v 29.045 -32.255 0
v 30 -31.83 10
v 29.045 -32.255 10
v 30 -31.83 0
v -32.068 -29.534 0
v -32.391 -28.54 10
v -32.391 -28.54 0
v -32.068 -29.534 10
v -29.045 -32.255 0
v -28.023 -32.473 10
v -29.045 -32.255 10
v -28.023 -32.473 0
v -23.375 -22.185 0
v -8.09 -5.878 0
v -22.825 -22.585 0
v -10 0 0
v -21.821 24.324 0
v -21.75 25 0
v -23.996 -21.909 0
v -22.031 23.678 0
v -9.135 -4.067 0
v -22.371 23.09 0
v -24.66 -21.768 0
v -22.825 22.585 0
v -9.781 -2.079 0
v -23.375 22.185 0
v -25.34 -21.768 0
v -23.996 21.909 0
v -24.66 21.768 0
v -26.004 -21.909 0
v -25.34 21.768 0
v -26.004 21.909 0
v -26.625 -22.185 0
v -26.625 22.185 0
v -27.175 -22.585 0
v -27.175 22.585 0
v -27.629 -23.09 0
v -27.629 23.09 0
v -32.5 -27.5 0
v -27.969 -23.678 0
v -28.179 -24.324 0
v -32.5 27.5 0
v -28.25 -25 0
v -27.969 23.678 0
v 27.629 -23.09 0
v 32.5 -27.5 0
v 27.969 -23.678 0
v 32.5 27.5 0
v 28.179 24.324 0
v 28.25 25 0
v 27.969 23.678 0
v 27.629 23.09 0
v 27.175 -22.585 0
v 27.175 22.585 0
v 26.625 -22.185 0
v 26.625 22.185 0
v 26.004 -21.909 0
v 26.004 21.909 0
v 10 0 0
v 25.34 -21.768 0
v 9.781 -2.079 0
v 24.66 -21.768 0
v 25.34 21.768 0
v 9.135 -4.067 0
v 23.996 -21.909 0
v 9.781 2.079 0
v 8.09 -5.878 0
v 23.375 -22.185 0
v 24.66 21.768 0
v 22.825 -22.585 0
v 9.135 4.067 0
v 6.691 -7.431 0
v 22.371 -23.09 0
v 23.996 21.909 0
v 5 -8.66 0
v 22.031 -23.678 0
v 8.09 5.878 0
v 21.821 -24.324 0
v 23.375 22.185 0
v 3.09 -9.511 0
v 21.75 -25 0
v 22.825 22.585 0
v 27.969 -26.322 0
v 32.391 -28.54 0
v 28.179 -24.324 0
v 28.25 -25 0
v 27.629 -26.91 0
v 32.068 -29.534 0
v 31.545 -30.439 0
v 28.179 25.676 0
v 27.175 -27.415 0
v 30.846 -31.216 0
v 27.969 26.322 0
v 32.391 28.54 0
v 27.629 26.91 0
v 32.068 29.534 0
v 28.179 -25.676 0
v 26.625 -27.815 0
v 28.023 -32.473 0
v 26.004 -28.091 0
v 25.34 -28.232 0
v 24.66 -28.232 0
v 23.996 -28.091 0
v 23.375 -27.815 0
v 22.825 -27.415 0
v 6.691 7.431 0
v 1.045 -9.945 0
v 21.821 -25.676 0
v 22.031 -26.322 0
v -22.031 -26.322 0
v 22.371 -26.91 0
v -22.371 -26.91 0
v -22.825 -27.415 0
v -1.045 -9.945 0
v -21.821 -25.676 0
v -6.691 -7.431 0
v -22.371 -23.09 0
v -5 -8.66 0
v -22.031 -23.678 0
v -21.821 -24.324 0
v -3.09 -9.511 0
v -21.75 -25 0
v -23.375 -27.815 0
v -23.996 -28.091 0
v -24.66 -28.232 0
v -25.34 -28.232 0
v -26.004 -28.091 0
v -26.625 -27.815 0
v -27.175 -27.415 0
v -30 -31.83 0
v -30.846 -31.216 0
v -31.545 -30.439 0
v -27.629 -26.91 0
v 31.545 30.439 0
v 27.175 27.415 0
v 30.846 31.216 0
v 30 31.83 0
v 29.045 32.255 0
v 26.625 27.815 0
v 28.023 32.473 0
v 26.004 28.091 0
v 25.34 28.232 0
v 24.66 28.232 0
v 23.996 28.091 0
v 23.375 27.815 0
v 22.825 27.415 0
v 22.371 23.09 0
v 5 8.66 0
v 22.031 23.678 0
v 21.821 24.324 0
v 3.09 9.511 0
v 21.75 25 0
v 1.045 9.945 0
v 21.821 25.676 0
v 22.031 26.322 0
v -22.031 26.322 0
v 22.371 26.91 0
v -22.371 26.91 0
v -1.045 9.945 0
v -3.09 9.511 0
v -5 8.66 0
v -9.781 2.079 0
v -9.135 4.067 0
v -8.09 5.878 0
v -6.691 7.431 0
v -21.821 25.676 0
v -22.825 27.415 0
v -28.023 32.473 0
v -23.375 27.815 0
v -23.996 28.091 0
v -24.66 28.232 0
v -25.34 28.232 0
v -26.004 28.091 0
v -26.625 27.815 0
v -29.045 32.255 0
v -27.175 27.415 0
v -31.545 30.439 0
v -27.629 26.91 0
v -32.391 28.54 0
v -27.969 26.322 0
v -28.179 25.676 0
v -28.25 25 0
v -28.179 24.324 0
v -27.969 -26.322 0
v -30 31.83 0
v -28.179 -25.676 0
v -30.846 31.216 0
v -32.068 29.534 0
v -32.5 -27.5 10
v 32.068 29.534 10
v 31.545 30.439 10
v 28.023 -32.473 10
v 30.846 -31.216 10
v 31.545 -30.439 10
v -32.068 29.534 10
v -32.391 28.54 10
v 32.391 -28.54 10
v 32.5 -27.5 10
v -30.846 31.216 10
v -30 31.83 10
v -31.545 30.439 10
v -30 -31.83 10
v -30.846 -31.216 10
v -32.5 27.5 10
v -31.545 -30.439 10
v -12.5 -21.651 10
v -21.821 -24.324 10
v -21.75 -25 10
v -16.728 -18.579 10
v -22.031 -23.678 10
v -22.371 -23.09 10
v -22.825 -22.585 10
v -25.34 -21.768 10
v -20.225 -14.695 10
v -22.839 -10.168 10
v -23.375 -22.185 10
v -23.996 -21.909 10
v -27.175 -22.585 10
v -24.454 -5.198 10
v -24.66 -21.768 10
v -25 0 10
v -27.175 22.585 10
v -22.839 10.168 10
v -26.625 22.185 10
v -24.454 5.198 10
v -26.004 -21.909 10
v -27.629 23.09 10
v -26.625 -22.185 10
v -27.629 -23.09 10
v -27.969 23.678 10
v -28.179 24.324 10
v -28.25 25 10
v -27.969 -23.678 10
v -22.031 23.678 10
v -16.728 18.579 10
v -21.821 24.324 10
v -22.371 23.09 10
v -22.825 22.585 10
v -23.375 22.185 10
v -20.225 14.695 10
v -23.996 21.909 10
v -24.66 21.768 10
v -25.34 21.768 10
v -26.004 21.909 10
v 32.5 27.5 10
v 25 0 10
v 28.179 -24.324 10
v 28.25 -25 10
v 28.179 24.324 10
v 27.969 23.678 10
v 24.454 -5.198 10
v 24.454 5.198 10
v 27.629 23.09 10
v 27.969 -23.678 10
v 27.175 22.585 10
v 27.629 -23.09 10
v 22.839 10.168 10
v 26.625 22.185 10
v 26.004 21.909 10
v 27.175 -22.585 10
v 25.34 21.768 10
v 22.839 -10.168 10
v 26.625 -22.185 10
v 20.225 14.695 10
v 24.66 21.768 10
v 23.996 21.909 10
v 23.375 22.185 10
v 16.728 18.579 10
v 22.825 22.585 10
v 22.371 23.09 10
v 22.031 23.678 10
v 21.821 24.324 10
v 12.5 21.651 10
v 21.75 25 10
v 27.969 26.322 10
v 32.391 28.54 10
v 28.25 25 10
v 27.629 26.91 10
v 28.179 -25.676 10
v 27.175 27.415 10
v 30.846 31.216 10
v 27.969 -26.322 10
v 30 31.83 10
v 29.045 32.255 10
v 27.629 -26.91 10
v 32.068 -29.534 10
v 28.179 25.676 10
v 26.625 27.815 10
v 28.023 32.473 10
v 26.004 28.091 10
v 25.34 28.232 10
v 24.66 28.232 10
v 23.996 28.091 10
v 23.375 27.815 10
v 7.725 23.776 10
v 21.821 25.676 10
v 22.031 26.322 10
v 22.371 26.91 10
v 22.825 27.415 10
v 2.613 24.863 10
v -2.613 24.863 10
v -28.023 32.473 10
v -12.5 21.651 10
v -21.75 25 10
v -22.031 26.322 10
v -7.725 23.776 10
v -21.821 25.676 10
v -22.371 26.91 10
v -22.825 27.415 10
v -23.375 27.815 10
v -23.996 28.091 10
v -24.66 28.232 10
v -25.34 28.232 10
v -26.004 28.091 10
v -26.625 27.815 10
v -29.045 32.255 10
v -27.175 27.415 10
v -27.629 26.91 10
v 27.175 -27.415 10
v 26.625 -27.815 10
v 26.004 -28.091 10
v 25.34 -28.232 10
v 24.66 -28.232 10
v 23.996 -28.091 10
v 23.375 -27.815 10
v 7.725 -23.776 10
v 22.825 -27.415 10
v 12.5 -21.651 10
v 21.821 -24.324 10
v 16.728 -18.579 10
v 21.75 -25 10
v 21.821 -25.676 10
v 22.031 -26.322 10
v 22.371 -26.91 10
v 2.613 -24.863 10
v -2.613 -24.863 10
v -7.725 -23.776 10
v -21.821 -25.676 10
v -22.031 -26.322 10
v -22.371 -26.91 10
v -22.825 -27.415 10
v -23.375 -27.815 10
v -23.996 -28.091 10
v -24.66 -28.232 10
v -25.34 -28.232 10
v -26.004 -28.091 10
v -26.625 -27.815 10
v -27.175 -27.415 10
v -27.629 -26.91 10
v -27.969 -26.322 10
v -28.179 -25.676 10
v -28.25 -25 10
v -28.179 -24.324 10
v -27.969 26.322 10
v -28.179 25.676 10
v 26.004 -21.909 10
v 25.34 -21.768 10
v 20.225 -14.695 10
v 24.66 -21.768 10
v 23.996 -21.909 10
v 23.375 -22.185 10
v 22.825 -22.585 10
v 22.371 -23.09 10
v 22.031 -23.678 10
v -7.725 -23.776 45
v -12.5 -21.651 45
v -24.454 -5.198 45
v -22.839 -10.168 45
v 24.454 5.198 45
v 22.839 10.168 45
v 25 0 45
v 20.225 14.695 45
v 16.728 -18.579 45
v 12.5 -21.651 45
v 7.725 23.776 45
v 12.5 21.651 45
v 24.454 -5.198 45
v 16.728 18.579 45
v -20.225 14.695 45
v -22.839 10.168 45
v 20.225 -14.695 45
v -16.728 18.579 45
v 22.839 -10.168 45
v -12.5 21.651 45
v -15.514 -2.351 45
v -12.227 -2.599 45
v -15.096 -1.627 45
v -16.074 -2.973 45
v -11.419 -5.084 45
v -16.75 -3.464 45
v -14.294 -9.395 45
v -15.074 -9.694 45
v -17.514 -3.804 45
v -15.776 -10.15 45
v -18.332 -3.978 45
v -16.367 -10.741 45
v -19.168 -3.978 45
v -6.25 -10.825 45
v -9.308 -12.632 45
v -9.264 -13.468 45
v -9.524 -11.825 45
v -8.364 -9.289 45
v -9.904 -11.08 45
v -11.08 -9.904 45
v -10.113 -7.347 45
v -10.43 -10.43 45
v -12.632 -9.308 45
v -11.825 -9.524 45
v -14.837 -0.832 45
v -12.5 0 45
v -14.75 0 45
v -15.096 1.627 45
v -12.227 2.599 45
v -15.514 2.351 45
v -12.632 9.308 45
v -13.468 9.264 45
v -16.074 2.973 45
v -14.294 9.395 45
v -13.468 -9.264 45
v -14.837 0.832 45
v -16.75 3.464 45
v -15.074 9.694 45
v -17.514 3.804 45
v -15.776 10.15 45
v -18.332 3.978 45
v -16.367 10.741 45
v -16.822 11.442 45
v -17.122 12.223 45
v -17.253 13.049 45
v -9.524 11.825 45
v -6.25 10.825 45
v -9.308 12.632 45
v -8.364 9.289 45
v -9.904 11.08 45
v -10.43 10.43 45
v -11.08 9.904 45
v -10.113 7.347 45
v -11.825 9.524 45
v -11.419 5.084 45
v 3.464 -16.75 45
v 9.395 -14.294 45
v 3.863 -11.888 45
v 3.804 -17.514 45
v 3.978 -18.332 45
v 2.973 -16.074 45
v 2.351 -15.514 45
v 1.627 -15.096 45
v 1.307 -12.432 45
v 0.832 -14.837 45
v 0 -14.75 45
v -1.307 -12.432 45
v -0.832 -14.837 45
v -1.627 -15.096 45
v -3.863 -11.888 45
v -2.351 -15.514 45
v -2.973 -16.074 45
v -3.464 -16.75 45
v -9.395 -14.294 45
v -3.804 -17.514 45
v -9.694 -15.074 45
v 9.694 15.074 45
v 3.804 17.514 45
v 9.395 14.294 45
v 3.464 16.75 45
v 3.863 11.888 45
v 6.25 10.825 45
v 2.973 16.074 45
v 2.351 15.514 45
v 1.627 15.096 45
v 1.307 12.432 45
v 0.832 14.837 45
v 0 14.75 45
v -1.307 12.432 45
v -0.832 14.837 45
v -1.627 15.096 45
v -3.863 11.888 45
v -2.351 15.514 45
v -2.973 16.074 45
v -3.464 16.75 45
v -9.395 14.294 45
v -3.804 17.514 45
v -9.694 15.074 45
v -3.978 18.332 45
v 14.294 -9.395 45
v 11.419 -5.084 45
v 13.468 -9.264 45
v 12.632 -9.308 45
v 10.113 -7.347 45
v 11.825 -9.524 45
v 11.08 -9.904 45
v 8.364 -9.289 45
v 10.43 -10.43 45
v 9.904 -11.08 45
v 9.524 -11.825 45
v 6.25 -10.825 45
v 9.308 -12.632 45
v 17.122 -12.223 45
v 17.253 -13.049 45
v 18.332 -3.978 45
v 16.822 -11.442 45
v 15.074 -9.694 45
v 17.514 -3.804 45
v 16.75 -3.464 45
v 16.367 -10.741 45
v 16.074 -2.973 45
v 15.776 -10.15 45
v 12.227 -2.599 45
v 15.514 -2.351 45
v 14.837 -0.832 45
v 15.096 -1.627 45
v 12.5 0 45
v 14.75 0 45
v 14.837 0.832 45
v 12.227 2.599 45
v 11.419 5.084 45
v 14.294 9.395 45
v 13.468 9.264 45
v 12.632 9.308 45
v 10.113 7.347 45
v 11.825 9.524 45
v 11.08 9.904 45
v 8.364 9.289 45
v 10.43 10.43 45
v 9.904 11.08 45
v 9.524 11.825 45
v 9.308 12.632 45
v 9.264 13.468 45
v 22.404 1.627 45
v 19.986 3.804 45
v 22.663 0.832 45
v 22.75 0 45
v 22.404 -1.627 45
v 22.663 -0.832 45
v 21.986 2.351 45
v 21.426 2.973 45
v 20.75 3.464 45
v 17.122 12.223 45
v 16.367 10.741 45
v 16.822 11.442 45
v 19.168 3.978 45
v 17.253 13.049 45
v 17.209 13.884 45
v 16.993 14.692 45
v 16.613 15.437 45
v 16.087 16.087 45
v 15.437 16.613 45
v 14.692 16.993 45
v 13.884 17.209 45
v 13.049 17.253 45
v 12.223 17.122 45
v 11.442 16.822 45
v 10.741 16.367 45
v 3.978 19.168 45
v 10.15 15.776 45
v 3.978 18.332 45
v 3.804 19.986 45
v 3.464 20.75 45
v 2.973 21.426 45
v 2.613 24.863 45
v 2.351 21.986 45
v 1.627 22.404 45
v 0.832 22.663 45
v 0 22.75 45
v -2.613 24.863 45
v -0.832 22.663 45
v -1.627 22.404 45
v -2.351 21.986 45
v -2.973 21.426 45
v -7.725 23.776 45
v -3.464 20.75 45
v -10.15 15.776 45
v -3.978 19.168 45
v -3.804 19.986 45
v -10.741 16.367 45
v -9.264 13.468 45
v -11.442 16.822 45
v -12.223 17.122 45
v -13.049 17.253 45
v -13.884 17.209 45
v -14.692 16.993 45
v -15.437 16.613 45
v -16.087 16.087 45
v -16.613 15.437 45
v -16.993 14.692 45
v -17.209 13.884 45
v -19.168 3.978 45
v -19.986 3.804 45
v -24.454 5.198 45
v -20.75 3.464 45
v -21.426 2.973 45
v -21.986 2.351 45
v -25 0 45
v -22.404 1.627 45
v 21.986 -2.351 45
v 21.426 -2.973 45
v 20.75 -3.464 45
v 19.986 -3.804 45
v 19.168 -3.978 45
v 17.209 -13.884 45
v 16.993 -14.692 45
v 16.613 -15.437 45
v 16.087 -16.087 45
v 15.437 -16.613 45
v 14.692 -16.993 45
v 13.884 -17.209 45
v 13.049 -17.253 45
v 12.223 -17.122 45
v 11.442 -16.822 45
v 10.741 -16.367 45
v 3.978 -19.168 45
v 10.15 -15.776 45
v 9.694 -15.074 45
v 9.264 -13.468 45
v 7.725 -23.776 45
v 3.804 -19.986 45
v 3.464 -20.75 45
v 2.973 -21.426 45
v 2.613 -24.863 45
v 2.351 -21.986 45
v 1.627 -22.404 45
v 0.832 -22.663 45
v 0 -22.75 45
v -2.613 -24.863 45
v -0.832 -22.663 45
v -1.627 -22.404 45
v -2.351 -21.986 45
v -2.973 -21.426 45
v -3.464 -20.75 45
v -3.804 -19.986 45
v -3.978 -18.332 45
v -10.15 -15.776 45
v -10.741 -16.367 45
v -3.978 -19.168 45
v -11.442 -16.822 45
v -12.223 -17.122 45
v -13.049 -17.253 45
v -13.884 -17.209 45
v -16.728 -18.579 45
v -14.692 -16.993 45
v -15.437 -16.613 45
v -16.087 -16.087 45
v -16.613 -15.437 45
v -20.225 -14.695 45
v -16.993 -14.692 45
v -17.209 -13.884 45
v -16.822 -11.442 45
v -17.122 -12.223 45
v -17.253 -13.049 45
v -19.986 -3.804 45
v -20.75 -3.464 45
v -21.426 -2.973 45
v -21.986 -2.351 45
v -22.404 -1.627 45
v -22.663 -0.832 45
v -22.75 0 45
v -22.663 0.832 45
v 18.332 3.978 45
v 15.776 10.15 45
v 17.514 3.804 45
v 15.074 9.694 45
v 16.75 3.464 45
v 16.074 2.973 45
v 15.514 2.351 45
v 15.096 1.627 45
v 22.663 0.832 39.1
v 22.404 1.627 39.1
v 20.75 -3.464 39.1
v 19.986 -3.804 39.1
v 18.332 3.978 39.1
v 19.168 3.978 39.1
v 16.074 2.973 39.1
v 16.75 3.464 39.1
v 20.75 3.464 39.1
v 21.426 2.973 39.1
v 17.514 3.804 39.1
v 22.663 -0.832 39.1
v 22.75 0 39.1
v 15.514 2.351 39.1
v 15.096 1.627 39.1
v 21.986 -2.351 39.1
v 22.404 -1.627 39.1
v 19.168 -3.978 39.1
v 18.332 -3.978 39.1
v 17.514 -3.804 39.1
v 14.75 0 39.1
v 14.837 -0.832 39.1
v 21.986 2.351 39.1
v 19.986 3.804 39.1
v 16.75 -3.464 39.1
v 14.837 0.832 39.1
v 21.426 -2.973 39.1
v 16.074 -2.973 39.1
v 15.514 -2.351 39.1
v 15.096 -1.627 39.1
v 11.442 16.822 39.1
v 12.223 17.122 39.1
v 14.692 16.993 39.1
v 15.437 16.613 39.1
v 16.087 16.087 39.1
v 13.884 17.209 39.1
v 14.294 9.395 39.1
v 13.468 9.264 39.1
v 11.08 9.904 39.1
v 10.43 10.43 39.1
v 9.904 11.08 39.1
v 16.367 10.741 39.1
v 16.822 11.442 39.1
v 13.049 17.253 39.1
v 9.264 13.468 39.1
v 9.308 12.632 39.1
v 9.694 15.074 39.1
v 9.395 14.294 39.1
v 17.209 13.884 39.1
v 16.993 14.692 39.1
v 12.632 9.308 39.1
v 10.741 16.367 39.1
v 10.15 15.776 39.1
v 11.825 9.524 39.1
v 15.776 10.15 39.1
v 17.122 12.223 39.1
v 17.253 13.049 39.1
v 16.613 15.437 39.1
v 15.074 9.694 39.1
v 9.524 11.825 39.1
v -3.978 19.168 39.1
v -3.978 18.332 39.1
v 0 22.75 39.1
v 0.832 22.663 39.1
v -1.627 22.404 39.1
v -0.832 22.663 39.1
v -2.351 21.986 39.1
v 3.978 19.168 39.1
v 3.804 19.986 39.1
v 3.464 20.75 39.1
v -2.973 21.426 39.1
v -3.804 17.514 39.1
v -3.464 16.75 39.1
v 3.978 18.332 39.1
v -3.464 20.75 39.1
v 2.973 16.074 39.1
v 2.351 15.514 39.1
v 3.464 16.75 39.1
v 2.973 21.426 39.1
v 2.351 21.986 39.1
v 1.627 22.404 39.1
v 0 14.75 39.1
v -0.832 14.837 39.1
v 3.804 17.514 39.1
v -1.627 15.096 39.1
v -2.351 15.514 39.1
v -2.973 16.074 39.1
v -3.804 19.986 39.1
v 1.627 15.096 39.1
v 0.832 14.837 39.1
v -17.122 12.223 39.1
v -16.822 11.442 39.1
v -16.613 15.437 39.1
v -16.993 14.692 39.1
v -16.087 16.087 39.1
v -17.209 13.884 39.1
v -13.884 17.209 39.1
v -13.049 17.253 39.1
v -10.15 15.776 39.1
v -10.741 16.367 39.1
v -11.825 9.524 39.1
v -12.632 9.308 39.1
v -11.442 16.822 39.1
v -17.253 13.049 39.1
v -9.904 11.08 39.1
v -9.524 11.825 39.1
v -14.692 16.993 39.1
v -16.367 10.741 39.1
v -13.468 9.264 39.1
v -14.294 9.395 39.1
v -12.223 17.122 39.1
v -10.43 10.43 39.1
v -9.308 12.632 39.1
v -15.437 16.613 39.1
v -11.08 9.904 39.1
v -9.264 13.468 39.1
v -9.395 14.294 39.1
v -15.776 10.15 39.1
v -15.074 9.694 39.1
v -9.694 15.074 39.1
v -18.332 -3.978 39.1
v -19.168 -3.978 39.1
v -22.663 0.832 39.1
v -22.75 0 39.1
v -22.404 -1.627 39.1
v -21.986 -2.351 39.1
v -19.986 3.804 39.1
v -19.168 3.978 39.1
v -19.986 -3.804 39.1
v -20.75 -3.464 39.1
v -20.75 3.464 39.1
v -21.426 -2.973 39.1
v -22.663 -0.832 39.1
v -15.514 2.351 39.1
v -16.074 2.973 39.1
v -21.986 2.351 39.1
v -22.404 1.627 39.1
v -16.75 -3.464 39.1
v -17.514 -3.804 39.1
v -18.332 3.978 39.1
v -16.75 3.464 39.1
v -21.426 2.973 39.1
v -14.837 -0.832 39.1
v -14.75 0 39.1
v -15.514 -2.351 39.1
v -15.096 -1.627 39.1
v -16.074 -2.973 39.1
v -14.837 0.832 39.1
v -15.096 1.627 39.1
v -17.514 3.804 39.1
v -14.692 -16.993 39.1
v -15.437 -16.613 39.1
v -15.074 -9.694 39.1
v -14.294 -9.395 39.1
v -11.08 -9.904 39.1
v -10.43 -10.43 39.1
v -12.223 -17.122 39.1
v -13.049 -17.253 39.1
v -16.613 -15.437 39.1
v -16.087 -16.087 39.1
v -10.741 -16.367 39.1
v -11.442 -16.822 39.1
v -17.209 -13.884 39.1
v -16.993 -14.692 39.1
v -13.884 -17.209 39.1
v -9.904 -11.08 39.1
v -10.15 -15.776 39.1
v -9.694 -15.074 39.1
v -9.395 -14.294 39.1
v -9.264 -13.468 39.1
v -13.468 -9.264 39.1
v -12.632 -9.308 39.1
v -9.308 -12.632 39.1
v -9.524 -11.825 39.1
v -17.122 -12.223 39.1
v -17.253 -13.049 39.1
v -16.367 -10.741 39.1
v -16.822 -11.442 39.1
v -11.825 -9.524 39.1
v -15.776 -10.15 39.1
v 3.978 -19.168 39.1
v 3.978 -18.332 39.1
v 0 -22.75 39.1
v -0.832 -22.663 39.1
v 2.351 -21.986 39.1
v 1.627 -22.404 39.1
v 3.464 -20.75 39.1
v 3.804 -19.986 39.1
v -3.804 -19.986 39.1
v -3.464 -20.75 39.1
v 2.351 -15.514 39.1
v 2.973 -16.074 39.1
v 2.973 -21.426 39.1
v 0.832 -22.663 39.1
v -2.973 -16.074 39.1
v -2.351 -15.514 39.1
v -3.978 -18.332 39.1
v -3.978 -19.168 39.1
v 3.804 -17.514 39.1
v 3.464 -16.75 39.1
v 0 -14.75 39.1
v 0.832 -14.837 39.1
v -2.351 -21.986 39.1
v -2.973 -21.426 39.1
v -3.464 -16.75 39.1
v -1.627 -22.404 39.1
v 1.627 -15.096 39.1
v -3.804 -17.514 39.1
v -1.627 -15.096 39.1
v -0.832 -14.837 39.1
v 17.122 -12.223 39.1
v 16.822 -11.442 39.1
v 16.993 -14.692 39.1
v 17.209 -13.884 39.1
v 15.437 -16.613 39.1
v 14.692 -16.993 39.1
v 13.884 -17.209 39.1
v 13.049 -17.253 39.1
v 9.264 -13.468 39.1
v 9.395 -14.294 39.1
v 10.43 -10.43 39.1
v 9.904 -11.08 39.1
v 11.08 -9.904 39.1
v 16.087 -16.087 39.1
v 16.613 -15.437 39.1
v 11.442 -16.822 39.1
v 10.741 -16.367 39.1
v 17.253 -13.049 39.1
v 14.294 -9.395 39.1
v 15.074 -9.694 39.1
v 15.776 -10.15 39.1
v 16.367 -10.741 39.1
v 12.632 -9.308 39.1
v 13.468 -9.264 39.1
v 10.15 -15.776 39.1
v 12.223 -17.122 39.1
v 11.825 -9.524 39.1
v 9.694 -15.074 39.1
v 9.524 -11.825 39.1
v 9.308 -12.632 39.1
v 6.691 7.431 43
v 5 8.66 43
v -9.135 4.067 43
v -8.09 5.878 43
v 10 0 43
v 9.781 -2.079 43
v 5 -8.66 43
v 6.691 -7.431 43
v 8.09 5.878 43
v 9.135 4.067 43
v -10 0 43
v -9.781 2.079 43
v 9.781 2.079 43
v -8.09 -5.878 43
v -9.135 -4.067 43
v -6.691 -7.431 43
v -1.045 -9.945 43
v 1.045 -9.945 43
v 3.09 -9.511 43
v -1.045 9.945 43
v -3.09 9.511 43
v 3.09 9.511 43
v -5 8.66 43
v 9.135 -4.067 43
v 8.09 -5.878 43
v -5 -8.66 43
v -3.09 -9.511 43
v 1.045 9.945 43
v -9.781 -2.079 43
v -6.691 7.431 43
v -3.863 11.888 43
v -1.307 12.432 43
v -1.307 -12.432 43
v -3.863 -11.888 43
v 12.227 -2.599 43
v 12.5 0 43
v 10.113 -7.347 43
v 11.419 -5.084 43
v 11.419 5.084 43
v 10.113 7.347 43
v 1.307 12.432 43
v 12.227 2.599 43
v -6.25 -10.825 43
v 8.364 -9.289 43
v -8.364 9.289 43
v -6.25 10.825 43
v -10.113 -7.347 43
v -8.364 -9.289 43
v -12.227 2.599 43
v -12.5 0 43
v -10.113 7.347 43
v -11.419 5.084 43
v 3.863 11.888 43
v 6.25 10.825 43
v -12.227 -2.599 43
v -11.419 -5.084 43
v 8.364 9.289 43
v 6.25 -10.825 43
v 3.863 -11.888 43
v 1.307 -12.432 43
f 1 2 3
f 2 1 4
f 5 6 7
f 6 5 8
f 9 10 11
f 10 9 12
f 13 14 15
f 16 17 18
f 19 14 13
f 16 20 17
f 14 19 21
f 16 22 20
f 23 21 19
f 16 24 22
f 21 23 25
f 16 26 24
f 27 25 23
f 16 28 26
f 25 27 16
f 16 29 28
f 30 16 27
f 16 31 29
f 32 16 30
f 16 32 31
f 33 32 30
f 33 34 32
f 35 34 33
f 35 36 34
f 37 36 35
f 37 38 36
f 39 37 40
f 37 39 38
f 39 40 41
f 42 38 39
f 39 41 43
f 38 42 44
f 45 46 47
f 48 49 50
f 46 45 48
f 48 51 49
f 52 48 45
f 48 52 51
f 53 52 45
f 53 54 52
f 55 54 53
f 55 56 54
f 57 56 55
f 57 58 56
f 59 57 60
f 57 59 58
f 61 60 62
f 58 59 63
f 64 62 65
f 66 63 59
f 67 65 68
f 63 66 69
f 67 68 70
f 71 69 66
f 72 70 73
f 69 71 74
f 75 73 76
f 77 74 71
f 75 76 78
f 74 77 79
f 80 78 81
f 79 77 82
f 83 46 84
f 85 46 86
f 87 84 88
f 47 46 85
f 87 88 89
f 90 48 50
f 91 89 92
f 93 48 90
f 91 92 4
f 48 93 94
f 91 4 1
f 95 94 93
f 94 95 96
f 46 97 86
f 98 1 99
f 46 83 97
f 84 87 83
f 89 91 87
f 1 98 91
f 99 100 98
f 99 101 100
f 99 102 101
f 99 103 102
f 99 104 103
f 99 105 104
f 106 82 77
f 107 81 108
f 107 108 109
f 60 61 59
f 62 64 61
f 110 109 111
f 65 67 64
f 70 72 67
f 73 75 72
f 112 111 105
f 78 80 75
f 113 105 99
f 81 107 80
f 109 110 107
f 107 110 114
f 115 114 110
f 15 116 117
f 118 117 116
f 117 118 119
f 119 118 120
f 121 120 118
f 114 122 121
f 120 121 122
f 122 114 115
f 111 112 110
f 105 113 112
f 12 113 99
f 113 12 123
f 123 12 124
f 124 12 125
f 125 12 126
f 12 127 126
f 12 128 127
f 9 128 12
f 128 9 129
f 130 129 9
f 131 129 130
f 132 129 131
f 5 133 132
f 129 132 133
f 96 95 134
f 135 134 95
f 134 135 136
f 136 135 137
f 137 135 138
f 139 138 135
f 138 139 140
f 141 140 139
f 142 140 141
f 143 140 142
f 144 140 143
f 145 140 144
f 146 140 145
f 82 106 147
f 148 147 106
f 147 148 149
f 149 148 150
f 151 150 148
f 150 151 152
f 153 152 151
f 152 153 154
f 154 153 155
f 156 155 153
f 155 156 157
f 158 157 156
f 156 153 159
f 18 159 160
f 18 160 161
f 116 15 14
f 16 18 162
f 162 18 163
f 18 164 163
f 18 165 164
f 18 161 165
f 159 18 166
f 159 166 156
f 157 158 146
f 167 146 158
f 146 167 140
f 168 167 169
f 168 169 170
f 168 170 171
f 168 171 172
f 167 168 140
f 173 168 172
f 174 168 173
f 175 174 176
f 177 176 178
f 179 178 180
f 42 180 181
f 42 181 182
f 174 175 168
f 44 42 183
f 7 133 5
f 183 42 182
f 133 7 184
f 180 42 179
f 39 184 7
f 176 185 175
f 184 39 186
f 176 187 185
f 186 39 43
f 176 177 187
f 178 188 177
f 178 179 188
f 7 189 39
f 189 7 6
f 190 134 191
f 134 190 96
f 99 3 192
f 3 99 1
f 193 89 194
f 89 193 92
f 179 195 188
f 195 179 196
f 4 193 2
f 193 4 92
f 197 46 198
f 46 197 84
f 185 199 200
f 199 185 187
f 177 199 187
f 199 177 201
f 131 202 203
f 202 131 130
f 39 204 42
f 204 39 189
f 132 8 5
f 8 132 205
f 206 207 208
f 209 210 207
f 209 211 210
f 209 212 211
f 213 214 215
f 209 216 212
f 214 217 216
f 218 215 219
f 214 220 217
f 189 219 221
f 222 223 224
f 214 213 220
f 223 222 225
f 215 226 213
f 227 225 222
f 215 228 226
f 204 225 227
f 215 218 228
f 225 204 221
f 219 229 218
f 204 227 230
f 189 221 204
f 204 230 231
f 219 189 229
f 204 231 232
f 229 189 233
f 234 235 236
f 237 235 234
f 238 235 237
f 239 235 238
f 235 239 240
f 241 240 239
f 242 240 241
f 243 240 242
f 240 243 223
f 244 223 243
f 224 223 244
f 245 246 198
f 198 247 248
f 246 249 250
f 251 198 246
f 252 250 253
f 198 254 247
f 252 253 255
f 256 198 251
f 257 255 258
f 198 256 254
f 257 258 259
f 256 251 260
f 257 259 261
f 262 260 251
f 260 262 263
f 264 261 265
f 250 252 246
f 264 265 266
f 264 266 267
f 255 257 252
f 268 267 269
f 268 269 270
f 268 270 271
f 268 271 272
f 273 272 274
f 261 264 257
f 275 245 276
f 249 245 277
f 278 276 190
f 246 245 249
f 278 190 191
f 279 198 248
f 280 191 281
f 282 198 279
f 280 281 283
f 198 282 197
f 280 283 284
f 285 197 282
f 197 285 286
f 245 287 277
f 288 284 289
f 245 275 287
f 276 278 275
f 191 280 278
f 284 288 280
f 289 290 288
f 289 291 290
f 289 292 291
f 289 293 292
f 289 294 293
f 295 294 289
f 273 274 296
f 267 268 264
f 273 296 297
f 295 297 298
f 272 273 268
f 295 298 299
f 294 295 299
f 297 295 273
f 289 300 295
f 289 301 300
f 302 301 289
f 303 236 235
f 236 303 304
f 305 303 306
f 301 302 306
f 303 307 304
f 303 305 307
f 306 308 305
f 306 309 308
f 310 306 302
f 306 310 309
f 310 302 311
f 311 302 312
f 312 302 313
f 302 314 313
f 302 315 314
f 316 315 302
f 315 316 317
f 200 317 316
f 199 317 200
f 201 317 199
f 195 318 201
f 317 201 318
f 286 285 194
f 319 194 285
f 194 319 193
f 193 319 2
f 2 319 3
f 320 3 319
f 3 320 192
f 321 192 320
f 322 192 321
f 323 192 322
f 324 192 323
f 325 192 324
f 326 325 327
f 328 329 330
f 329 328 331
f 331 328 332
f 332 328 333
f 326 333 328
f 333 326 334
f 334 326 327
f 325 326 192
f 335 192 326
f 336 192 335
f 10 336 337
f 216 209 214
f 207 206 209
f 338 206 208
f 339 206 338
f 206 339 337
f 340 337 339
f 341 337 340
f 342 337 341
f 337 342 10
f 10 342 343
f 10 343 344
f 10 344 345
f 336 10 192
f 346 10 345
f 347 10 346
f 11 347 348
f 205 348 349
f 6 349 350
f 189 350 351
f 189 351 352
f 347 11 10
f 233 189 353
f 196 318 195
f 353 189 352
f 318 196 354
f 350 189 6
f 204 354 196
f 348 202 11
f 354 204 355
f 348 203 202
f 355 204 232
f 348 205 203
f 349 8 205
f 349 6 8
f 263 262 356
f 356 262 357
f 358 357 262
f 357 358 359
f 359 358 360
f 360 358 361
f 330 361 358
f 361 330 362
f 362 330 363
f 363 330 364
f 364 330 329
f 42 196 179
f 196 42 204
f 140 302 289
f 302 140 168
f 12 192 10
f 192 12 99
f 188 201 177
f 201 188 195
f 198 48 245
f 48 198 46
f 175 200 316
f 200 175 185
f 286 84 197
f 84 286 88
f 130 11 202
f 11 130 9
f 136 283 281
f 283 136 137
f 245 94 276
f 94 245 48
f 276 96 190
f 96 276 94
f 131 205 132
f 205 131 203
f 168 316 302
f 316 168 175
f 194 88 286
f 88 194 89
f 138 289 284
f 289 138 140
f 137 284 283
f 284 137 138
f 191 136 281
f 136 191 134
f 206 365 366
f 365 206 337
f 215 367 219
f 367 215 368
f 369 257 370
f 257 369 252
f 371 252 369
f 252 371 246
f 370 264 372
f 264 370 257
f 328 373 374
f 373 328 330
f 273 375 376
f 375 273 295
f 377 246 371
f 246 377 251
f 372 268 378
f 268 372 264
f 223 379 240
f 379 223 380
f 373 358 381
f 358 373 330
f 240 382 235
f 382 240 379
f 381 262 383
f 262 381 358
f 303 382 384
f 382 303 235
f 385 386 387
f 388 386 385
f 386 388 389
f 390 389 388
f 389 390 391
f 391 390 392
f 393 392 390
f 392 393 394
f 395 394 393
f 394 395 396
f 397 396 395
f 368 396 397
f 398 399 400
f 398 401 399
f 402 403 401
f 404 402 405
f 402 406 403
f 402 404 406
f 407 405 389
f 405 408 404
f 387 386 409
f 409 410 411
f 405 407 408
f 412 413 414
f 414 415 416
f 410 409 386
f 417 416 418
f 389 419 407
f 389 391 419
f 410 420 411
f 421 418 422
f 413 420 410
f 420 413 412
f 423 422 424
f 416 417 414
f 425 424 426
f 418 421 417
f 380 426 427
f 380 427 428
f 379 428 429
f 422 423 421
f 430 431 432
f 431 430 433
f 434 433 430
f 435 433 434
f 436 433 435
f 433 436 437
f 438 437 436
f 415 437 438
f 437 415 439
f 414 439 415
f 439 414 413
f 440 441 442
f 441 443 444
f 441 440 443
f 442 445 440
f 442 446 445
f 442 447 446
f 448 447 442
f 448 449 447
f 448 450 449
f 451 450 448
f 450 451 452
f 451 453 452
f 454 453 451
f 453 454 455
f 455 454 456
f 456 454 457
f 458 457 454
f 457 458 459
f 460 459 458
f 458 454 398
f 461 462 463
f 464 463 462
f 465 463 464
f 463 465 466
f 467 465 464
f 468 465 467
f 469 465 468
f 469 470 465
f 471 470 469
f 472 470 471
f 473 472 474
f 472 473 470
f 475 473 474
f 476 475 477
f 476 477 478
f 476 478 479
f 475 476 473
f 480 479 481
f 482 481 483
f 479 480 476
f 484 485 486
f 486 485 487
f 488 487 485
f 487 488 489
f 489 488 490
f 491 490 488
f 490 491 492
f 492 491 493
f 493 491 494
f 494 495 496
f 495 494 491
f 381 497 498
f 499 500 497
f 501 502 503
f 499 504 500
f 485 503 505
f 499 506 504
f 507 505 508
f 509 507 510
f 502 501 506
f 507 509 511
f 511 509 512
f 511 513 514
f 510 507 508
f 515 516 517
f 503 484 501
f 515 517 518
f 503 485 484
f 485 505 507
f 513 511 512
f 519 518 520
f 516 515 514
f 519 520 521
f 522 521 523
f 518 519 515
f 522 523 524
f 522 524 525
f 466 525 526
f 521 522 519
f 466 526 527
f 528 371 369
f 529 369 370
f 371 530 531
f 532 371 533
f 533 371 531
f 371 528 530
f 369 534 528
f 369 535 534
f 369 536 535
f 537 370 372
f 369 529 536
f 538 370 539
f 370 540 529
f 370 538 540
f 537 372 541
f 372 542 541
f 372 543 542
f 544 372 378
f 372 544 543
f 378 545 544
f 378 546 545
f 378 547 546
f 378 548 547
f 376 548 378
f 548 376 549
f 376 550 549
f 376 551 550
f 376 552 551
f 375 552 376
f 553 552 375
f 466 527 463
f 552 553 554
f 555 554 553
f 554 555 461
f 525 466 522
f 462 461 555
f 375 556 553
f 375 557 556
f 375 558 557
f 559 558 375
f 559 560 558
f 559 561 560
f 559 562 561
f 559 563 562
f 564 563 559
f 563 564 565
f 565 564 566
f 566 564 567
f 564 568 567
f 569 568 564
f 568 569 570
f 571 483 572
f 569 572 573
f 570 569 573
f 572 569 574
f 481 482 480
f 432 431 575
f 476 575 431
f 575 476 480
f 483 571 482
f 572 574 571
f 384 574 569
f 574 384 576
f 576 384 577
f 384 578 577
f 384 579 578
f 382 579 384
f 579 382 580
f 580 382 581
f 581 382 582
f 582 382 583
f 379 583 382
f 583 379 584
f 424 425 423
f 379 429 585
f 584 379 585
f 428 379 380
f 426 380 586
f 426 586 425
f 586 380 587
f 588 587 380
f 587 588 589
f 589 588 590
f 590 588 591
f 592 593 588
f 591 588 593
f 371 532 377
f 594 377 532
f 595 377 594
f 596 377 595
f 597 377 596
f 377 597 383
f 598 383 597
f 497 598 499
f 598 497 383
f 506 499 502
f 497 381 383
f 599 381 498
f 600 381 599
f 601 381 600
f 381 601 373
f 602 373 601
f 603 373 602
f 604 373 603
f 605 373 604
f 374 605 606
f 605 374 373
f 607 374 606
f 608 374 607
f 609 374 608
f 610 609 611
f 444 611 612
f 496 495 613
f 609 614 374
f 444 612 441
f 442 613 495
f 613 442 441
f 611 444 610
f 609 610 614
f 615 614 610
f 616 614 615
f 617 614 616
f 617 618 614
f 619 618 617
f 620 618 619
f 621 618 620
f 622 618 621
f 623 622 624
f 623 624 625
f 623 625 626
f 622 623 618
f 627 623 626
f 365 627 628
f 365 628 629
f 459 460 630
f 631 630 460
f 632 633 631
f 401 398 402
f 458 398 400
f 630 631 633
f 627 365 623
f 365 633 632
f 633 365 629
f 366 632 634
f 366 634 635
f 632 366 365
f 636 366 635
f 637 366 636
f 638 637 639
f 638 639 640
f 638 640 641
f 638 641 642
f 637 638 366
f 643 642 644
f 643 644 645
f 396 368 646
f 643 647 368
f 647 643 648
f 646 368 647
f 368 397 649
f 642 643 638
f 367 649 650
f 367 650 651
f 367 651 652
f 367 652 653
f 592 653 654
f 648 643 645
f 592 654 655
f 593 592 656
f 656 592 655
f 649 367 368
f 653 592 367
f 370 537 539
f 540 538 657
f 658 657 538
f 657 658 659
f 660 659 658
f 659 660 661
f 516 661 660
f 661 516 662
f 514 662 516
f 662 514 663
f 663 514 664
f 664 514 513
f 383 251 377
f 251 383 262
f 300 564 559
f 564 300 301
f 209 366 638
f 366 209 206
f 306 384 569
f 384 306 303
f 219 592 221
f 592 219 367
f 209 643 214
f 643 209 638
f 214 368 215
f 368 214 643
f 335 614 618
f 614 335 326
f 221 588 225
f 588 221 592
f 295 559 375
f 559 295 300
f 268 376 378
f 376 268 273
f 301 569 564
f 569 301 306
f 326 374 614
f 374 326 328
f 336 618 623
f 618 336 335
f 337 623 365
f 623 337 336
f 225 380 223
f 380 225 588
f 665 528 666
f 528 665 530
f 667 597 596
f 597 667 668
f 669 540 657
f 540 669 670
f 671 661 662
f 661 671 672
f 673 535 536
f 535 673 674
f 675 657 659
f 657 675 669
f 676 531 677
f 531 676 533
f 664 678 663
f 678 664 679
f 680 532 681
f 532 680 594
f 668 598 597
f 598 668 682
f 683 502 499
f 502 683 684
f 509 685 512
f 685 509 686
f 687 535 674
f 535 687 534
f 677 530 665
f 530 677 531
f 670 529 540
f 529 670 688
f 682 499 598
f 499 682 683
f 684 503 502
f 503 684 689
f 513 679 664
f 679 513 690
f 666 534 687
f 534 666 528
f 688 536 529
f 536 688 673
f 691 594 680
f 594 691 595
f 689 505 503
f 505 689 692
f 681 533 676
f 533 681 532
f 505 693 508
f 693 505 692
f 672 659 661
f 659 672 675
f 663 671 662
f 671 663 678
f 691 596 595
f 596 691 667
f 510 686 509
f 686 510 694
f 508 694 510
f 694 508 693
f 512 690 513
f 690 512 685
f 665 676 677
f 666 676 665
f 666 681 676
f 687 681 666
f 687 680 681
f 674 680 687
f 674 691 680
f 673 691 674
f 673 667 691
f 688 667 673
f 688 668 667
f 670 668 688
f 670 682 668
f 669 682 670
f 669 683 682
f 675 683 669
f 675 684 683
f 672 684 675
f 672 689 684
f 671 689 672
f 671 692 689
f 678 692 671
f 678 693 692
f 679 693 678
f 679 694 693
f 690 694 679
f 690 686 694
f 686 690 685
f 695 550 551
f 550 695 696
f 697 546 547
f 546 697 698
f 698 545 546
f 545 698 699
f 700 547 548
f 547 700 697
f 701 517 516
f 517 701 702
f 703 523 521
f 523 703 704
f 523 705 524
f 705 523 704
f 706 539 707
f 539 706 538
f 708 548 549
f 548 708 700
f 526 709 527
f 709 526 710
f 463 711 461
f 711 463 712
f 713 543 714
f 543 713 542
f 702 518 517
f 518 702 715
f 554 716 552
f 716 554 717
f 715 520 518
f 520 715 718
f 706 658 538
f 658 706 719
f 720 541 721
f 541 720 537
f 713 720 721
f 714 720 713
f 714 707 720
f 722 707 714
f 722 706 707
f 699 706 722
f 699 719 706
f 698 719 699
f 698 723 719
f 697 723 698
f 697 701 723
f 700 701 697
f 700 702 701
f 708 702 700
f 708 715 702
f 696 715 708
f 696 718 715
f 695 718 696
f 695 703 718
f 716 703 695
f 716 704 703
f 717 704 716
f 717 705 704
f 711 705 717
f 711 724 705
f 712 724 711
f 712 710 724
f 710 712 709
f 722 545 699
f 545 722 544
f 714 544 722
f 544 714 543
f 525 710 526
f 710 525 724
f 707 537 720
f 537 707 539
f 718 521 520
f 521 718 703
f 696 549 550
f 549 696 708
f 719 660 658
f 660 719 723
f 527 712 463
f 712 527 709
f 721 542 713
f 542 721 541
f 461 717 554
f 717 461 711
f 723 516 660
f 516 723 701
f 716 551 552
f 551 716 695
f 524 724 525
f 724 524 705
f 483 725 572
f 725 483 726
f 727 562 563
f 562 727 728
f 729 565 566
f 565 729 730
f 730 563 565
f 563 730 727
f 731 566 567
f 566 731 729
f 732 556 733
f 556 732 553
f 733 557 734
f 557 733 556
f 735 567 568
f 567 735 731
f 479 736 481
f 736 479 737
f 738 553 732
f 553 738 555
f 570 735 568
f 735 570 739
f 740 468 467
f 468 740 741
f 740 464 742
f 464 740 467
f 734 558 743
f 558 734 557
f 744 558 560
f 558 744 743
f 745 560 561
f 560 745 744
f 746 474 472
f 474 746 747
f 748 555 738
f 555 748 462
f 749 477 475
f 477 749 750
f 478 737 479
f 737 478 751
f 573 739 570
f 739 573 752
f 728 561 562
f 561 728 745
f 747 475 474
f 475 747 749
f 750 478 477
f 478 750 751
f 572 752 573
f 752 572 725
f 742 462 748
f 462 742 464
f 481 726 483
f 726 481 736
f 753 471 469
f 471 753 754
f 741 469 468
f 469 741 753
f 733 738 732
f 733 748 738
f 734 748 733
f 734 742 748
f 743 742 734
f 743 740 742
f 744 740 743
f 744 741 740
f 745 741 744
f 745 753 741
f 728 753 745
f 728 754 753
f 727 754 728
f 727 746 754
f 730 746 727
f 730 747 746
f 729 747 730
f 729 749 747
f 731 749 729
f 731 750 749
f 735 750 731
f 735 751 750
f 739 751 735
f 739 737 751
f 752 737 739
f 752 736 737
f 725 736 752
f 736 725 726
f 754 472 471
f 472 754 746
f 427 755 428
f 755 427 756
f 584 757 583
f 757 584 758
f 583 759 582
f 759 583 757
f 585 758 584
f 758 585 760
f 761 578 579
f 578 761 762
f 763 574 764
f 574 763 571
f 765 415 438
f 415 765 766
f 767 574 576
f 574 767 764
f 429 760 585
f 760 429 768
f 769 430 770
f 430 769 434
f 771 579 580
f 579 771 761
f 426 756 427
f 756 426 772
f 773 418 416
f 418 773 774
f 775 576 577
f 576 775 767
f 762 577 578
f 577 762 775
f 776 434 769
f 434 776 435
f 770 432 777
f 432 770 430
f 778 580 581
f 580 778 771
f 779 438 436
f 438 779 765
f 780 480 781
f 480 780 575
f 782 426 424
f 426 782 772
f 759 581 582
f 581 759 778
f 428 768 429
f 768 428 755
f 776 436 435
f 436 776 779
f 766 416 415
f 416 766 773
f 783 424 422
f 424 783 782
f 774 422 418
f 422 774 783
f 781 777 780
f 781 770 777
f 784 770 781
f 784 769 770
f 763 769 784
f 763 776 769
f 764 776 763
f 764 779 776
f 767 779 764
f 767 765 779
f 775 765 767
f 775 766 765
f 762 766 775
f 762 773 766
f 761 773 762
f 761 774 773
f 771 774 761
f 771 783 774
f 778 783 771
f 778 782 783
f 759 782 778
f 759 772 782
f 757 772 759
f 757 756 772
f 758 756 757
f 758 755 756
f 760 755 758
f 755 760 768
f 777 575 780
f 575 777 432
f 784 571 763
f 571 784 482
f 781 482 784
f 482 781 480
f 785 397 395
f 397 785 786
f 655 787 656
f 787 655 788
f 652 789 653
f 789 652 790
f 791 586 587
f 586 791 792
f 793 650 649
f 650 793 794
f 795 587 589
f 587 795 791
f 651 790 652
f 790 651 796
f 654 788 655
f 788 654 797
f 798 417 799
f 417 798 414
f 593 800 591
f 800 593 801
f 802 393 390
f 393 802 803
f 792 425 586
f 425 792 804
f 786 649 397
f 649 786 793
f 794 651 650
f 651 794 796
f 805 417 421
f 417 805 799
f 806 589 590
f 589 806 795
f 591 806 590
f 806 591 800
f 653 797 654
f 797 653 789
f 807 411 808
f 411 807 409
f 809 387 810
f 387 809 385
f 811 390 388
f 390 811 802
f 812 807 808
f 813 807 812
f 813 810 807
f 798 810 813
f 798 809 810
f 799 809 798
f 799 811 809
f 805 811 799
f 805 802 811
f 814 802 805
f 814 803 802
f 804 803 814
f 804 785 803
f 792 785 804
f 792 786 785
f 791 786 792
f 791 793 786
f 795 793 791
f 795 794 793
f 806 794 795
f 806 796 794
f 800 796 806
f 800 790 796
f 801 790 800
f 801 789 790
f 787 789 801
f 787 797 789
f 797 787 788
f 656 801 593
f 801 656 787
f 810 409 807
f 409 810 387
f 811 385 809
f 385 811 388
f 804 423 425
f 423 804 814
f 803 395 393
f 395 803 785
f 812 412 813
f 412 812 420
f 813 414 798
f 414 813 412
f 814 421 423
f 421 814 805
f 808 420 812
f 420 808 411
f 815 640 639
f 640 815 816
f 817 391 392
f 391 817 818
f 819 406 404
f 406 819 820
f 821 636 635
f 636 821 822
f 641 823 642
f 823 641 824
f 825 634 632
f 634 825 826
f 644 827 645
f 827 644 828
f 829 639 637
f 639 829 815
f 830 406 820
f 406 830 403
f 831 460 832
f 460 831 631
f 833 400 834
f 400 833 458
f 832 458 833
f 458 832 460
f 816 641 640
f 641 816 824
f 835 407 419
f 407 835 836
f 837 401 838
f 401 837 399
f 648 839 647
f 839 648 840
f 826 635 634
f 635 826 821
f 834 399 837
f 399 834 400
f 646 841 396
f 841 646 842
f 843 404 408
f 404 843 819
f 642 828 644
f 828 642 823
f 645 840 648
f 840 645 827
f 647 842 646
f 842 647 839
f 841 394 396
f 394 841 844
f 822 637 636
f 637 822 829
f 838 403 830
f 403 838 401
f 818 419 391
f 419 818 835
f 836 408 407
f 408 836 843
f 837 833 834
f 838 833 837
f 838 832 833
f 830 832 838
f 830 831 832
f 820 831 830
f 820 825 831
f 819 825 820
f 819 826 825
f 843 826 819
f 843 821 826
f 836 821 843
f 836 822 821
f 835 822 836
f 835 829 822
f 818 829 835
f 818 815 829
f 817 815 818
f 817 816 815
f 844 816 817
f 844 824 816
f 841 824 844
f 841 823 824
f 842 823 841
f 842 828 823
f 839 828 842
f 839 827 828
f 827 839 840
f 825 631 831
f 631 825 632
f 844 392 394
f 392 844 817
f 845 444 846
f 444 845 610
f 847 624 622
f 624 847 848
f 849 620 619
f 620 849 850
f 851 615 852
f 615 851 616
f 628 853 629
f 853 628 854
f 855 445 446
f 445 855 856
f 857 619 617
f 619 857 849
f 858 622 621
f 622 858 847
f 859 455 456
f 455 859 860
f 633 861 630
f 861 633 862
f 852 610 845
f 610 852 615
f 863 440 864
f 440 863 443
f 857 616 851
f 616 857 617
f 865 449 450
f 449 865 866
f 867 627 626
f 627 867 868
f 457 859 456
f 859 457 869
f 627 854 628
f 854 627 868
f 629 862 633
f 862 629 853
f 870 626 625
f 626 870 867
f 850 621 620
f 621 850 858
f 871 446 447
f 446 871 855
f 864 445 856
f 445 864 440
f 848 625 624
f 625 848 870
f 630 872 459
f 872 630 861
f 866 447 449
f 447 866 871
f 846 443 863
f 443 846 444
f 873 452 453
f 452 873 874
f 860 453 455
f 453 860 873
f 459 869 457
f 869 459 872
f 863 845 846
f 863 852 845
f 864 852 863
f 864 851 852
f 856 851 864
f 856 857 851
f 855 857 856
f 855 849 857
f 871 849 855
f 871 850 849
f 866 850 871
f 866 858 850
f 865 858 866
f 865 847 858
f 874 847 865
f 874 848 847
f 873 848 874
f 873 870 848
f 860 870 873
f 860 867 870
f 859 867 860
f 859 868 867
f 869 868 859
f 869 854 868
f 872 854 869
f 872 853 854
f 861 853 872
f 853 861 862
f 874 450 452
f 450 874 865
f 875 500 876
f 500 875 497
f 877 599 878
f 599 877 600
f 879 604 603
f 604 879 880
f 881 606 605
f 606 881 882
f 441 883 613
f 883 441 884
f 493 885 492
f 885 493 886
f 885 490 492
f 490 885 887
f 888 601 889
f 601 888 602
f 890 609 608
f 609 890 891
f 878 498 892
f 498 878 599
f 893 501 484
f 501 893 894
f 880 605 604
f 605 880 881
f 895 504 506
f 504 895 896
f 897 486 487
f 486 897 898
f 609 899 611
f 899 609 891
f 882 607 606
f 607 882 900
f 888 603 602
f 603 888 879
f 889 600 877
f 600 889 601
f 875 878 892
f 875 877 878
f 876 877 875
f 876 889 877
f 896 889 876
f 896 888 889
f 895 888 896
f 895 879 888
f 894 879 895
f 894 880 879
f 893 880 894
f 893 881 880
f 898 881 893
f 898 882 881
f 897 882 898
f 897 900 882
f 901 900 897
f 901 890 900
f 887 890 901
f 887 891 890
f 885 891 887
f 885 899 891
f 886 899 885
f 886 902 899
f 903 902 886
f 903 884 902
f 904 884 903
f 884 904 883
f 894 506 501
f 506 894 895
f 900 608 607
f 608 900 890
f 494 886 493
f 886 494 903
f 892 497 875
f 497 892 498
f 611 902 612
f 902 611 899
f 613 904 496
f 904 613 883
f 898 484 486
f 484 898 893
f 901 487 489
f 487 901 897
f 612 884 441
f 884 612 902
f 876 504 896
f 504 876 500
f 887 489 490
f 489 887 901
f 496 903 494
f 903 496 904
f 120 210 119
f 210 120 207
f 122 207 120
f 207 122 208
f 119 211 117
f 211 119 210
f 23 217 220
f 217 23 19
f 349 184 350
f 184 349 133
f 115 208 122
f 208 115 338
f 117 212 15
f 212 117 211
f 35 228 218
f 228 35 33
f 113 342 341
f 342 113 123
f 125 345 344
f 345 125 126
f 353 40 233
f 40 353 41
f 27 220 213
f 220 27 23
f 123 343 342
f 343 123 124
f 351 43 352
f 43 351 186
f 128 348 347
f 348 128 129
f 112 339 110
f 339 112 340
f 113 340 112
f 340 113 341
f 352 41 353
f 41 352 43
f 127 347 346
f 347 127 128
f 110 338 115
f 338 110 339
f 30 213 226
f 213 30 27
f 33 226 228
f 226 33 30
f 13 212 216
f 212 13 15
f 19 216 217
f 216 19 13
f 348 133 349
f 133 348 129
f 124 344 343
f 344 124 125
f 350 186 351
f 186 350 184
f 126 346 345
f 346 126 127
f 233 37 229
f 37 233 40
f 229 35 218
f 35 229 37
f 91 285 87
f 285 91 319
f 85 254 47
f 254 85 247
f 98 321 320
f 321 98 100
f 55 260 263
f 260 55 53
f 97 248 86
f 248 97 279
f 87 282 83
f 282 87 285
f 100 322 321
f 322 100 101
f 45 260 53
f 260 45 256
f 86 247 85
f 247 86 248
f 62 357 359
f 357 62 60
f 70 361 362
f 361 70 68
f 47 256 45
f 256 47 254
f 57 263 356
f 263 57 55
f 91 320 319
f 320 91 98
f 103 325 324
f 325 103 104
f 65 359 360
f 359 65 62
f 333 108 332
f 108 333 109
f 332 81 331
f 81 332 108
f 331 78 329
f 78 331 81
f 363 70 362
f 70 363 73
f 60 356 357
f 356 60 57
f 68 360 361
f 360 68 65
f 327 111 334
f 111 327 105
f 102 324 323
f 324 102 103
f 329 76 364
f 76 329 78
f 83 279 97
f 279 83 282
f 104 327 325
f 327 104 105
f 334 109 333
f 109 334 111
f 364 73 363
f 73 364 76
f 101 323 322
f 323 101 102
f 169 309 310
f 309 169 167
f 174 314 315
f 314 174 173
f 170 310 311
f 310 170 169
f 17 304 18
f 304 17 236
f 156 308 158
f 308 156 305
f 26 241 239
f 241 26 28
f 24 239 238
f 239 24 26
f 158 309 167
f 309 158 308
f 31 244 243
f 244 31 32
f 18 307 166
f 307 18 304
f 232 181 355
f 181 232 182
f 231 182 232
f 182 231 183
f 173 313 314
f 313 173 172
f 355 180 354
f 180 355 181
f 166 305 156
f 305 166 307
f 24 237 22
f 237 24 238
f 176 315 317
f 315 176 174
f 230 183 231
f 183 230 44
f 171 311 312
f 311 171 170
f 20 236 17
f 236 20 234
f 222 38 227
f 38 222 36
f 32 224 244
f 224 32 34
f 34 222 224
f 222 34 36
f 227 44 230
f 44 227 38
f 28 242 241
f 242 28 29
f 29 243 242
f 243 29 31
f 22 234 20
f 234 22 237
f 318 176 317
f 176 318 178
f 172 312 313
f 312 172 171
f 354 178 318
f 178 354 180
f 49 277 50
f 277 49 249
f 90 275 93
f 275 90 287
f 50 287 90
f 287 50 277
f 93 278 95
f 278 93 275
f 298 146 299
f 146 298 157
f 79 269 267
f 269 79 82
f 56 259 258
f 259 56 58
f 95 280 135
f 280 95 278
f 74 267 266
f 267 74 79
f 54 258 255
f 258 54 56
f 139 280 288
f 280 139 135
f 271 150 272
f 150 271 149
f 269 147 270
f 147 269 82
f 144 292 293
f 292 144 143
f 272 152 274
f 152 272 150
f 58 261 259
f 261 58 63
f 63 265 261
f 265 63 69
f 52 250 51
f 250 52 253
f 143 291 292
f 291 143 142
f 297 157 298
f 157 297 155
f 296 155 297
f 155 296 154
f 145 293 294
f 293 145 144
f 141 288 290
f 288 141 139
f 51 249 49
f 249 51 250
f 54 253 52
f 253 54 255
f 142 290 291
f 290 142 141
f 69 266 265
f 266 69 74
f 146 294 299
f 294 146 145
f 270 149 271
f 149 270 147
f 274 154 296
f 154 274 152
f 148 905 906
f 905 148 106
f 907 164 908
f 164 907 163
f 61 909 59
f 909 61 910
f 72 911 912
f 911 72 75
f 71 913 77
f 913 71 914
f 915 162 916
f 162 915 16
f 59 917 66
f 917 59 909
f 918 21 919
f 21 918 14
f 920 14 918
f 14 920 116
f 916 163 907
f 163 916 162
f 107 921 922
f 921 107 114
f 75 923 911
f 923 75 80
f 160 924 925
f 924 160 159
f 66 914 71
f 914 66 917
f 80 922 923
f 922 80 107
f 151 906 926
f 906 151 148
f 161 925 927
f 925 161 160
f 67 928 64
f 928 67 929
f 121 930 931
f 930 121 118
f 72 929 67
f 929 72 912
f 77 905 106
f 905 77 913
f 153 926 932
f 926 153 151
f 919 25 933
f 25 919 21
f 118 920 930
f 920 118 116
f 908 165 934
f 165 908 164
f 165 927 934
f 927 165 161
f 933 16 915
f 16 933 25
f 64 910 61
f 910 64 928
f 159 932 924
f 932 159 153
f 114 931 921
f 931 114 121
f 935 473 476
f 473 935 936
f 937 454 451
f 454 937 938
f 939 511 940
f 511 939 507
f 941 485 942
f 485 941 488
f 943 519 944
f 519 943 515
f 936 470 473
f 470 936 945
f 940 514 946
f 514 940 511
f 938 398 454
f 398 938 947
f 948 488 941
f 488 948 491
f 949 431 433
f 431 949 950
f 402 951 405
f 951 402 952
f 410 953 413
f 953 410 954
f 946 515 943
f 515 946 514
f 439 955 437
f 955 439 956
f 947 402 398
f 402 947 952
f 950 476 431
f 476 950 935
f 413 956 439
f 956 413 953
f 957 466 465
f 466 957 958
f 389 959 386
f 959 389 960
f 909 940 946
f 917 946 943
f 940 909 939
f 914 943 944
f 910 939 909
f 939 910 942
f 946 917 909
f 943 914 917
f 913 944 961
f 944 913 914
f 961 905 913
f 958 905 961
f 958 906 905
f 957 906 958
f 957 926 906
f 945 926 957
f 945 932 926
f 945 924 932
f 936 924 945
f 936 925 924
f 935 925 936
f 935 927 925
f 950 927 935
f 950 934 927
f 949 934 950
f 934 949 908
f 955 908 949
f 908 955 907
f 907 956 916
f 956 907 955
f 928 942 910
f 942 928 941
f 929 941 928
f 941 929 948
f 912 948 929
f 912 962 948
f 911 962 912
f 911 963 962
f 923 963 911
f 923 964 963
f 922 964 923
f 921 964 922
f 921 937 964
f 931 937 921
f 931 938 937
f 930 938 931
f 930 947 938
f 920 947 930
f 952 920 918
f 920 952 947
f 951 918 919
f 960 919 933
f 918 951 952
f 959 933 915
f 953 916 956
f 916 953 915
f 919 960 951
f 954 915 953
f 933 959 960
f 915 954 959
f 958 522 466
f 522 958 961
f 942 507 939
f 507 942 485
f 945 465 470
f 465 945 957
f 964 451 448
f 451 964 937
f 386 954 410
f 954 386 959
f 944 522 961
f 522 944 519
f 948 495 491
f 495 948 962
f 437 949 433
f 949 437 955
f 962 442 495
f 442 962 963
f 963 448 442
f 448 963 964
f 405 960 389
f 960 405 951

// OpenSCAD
//$fa=1;
$fs=0.5;

module roundedRect(size, radius)
{
    x = size[0];
    y = size[1];
    z = size[2];

    linear_extrude(height=z)
    hull() {
        // place 4 circles in the corners, with the given radius
        translate([(-x/2)+(radius/2), (-y/2)+(radius/2), 0])
        circle(r=radius);

        translate([(x/2)-(radius/2), (-y/2)+(radius/2), 0])
        circle(r=radius);

        translate([(-x/2)+(radius/2), (y/2)-(radius/2), 0])
        circle(r=radius);

        translate([(x/2)-(radius/2), (y/2)-(radius/2), 0])
        circle(r=radius);
    }
}



module pcd(n, d) 
{
    angle = 360/n;
    for (i=[0:n-1]) {
        rotate([0,0,i*angle]) translate([d/2,0,0]) children();
    }
    
}

module grid(size, xn, yn, center=false)
{
    xmin = center == true ?  -0.5 * size[0] : 0;
    ymin = center == true ?  -0.5 * size[1] : 0;
    x_spacing = size[0] / (xn - 1);
    y_spacing = size[1] / (yn - 1);
    for (y = [0: yn - 1]) {
        for (x = [0: xn-1]) {
            translate([xmin+x*x_spacing, ymin + y*y_spacing, 0]) children();
        }
    }
}


module bearing_housing() {
    boss_size = [60, 60, 10];
    boss_rad = 5;
    boss_holes = [50, 50];
    cyl_dia = 50;
    cyl_h = 35;
    thru_dia = 20;
    cap_pcd = 37.5;
    cap_n = 8;
    M6_clearance = 6.5;
    M4_insert_h = 5.9;
    M4_insert_d = 8;
    flange_thk = 2;
    flange_dia = 25;
    
    h_tot = boss_size.z + cyl_h;
    difference() {
        union() {
            roundedRect(boss_size, boss_rad);
            translate([0,0,boss_size.z]) cylinder(h=cyl_h, d=cyl_dia);
        }
        cylinder(h=h_tot,d=thru_dia);
        translate([0,0,h_tot-flange_thk]) cylinder(h=flange_thk, d=flange_dia);
        pcd(cap_n, cap_pcd) translate([0,0,h_tot-M4_insert_h]) cylinder(d=M4_insert_d, h=M4_insert_h);
        grid(boss_holes, 2, 2, center=true) cylinder(d=M6_clearance, h=boss_size.z);
    }
}

render(convexity=5) color("blue") bearing_housing();
